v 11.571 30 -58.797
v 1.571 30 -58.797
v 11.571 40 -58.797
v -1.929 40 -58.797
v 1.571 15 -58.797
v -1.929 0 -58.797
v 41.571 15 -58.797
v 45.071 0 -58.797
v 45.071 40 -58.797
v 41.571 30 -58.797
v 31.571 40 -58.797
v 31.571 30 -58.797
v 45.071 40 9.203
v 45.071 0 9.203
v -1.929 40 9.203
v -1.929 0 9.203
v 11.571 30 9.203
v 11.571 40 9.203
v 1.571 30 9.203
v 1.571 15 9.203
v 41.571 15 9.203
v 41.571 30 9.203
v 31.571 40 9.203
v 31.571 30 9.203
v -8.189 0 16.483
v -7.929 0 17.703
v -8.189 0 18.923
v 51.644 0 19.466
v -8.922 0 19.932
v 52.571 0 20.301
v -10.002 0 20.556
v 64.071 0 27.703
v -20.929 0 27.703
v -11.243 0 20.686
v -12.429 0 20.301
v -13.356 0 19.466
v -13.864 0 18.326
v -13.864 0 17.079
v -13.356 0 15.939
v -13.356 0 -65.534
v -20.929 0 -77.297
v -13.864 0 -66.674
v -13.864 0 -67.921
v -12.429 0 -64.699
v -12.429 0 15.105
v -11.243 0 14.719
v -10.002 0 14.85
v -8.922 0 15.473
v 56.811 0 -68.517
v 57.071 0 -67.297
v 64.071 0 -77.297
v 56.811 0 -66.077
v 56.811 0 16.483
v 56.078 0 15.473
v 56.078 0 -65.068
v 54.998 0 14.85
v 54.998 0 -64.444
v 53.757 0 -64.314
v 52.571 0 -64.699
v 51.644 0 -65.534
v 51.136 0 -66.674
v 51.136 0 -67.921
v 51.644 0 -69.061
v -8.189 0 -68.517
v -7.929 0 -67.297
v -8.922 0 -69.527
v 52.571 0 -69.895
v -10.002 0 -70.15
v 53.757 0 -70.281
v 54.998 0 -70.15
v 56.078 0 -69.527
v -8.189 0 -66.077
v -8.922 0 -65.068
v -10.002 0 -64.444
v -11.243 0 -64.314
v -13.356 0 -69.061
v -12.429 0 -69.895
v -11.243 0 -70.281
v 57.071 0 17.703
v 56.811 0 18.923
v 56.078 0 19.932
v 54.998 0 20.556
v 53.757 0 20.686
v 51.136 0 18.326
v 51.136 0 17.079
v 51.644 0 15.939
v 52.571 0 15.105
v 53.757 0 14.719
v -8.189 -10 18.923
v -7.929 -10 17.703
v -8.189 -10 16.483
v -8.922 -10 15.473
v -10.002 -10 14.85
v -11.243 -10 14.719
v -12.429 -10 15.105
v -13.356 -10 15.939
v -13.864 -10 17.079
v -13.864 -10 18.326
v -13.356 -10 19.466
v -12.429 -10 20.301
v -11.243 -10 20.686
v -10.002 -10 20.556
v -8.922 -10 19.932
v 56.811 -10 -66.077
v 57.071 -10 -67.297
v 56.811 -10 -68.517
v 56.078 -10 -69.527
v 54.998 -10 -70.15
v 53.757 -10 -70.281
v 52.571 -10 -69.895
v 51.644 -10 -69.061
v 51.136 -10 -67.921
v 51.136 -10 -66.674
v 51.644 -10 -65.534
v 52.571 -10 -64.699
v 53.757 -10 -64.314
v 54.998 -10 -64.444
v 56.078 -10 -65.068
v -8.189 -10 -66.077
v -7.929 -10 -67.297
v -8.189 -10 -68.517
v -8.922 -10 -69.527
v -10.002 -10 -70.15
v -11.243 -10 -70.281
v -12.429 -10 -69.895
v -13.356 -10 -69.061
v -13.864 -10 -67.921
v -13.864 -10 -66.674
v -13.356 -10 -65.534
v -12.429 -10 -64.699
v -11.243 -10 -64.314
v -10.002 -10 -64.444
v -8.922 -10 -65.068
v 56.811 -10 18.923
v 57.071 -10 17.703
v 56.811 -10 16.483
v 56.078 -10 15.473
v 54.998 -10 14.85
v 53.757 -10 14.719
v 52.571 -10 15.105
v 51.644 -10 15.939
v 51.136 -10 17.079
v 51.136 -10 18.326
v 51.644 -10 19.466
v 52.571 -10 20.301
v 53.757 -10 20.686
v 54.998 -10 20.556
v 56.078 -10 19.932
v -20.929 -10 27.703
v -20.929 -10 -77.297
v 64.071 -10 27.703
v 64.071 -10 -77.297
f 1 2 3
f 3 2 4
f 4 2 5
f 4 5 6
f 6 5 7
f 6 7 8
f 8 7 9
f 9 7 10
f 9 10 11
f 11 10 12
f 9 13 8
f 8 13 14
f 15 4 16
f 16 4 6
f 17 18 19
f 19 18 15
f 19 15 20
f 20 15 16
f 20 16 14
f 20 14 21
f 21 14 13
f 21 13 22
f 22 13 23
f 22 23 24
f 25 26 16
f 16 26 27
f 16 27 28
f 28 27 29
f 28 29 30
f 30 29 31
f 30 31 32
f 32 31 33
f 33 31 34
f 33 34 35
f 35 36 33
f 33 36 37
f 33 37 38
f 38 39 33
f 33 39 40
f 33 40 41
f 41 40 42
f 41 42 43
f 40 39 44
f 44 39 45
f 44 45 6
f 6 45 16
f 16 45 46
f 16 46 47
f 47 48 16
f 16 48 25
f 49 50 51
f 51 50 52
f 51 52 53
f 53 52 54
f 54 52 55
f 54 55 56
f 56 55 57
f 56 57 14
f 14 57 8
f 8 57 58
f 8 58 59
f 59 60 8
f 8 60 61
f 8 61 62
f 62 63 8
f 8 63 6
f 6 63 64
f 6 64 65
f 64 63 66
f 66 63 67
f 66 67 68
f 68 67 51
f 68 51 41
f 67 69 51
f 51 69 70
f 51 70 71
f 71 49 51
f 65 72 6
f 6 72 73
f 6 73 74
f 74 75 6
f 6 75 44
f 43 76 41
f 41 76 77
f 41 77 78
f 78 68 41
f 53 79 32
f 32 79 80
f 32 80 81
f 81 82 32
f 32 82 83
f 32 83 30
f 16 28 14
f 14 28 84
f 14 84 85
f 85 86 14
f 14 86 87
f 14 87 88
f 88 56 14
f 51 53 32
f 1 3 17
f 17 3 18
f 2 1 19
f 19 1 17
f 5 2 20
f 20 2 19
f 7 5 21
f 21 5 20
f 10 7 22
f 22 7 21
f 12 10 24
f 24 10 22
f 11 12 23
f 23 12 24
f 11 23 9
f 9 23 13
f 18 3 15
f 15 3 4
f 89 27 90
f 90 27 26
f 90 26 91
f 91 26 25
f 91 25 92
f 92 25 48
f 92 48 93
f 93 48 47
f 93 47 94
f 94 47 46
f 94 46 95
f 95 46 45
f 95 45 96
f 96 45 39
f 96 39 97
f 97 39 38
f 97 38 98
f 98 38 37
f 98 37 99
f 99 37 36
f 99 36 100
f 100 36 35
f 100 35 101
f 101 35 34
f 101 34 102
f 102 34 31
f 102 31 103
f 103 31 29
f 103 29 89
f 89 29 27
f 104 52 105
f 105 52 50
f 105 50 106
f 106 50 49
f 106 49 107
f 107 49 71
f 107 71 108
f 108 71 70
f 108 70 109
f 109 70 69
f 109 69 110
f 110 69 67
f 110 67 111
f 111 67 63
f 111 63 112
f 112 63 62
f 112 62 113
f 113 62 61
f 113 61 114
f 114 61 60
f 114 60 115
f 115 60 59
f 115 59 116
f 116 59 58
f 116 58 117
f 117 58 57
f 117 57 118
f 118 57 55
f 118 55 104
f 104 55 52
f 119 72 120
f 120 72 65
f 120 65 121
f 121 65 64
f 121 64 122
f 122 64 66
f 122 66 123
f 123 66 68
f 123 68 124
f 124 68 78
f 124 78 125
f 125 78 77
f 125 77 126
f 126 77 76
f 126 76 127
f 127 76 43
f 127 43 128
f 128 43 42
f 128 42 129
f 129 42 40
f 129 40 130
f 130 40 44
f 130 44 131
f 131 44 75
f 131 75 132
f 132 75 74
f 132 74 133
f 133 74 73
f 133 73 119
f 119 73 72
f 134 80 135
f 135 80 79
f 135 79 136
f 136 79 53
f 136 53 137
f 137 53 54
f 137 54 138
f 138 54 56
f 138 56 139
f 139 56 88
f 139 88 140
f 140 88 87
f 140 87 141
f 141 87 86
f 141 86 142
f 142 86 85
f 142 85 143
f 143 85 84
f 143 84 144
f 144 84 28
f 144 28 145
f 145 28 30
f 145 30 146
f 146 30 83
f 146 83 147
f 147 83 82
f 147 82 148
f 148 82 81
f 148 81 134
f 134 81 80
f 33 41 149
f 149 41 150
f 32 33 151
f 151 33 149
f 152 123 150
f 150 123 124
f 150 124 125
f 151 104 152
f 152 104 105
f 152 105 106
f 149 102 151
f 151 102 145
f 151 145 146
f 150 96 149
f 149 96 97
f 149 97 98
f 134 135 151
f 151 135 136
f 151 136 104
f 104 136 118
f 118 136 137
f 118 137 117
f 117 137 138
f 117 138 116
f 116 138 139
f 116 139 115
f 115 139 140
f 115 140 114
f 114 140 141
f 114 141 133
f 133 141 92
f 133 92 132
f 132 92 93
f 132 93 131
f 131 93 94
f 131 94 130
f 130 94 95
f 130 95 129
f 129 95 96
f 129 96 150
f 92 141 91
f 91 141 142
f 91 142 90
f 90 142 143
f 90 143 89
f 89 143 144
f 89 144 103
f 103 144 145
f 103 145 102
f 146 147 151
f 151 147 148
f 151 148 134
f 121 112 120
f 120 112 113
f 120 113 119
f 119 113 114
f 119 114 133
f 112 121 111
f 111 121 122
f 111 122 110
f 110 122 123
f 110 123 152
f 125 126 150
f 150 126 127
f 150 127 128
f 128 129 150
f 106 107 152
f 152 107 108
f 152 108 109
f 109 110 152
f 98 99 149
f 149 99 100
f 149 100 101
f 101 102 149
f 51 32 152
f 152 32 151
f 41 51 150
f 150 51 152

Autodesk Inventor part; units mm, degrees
ref_plane "YZ Plane" through (0, 0, 0) normal (1, 0, 0) x (0, 1, 0)
ref_plane "XZ Plane" through (0, 0, 0) normal (0, 1, 0) x (-1, 0, 0)
ref_plane "XY Plane" through (0, 0, 0) normal (0, 0, 1) x (1, 0, 0)
sketch "Sketch1" plane through (0, 0, 0) normal (0, 1, 0) x (-1, 0, 0)
  point P0 (0, 0)
sketch "Sketch2" plane through (0, 0, 0) normal (0, 1, 0) x (-1, 0, 0)
  line L0 (10.9292, 17.7027) -> (-54.0708, 17.7027)
  line L1 (-54.0708, 17.7027) -> (-54.0708, -67.2973)
  line L2 (-54.0708, -67.2973) -> (10.9292, -67.2973)
  line L3 (10.9292, -67.2973) -> (10.9292, 17.7027)
  line L4 (10.9292, -24.7973) -> (-21.5708, -24.7973) construction
  line L5 (-21.5708, -24.7973) -> (-21.5708, 9.2027) construction
  line L6 (-21.5708, 9.2027) -> (1.9292, 9.2027)
  line L7 (1.9292, 9.2027) -> (1.9292, -58.7973)
  line L8 (1.9292, -58.7973) -> (-45.0708, -58.7973)
  line L9 (-45.0708, -58.7973) -> (-45.0708, 9.2027)
  line L10 (-45.0708, 9.2027) -> (-21.5708, 9.2027)
  line L11 (10.9292, 12.7027) -> (5.9292, 12.7027) construction
  circle A0 centre (5.9292, 12.7027) radius 3
  line L12 (10.9292, -62.2973) -> (5.9292, -62.2973) construction
  circle A1 centre (5.9292, -62.2973) radius 3
  line L13 (-54.0708, -62.2973) -> (-49.0708, -62.2973) construction
  circle A2 centre (-49.0708, -62.2973) radius 3
  line L14 (-54.0708, 12.7027) -> (-49.0708, 12.7027) construction
  circle A3 centre (-49.0708, 12.7027) radius 3
  point P0 (0, 0)
  dimension "d0" = 65
  dimension "d1" = 85
  dimension "d2" = 34
  dimension "d3" = 23.5
  dimension "d4" = 68
  dimension "d5" = 47
  dimension "d6" = 68
  dimension "d8" = 5
  dimension "d9" = 6
  dimension "d11" = 5
  dimension "d12" = 6
  dimension "d14" = 5
  dimension "d15" = 6
  dimension "d17" = 5
  dimension "d18" = 6
extrude "Extrusion1" add sketch "Sketch2" along normal blind 10 contours L3 L2 L1 L0 | L6 L7 L8 L9 L10
extrude "Extrusion2" cut sketch "Sketch2" along normal blind 20 contours L6 L7 L8 L9 L10
extrude "Extrusion3" add sketch "Sketch2" along normal blind 40 contours L6 L7 L8 L9 L10
sketch "Sketch3" plane through (45.0708, 10, -58.7973) normal (0, 0, -1) x (-1, 0, 0)
  line L0 (47, 30) -> (0, 30) projected
  line L1 (0, 30) -> (13.5, 30) construction
  line L2 (47, 30) -> (33.5, 30) construction
  line L3 (13.5, 30) -> (13.5, 20)
  line L4 (13.5, 20) -> (3.5, 20)
  line L5 (3.5, 20) -> (3.5, 5)
  line L6 (3.5, 5) -> (43.5, 5)
  line L7 (43.5, 5) -> (43.5, 20)
  line L8 (43.5, 20) -> (33.5, 20)
  line L9 (33.5, 20) -> (33.5, 30)
  line L10 (13.5, 30) -> (33.5, 30)
  point P0 (45.0708, -10)
  dimension "d25" = 13.5
  dimension "d26" = 13.5
  dimension "d27" = 10
  dimension "d28" = 10
  dimension "d29" = 15
  dimension "d30" = 40
  dimension "d31" = 15
  dimension "d32" = 10
extrude "Extrusion4" cut sketch "Sketch3" against normal blind 68
sketch "Sketch4" plane through (45.0708, 10, -58.7973) normal (0, 0, -1) x (-1, 0, 0)
  point P0 (45.0708, -10)
sketch "Sketch5" plane through (0, 0, 0) normal (0, -1, 0) x (1, 0, 0)
  line L0 (-10.9292, 17.7027) -> (54.0708, 17.7027) projected
  line L1 (-20.9292, 27.7027) -> (64.0708, 27.7027)
  line L2 (64.0708, 27.7027) -> (64.0708, -77.2973)
  line L3 (64.0708, -77.2973) -> (-20.9292, -77.2973)
  line L4 (-20.9292, -77.2973) -> (-20.9292, 27.7027)
  circle A0 centre (54.0708, 17.7027) radius 3
  circle A1 centre (-10.9292, 17.7027) radius 3
  line L5 (54.0708, -67.2973) -> (-10.9292, -67.2973) projected
  circle A2 centre (-10.9292, -67.2973) radius 3
  circle A3 centre (54.0708, -67.2973) radius 3
  point P0 (0, 0)
  dimension "d37" = 85
  dimension "d38" = 105
  dimension "d41" = 6
  dimension "d42" = 105
  dimension "d43" = 6
  dimension "d44" = 6
  dimension "d45" = 6
extrude "Extrusion5" cut sketch "Sketch2" along normal blind 10
extrude "Extrusion6" add sketch "Sketch5" along normal blind 10
properties part number "Base"
